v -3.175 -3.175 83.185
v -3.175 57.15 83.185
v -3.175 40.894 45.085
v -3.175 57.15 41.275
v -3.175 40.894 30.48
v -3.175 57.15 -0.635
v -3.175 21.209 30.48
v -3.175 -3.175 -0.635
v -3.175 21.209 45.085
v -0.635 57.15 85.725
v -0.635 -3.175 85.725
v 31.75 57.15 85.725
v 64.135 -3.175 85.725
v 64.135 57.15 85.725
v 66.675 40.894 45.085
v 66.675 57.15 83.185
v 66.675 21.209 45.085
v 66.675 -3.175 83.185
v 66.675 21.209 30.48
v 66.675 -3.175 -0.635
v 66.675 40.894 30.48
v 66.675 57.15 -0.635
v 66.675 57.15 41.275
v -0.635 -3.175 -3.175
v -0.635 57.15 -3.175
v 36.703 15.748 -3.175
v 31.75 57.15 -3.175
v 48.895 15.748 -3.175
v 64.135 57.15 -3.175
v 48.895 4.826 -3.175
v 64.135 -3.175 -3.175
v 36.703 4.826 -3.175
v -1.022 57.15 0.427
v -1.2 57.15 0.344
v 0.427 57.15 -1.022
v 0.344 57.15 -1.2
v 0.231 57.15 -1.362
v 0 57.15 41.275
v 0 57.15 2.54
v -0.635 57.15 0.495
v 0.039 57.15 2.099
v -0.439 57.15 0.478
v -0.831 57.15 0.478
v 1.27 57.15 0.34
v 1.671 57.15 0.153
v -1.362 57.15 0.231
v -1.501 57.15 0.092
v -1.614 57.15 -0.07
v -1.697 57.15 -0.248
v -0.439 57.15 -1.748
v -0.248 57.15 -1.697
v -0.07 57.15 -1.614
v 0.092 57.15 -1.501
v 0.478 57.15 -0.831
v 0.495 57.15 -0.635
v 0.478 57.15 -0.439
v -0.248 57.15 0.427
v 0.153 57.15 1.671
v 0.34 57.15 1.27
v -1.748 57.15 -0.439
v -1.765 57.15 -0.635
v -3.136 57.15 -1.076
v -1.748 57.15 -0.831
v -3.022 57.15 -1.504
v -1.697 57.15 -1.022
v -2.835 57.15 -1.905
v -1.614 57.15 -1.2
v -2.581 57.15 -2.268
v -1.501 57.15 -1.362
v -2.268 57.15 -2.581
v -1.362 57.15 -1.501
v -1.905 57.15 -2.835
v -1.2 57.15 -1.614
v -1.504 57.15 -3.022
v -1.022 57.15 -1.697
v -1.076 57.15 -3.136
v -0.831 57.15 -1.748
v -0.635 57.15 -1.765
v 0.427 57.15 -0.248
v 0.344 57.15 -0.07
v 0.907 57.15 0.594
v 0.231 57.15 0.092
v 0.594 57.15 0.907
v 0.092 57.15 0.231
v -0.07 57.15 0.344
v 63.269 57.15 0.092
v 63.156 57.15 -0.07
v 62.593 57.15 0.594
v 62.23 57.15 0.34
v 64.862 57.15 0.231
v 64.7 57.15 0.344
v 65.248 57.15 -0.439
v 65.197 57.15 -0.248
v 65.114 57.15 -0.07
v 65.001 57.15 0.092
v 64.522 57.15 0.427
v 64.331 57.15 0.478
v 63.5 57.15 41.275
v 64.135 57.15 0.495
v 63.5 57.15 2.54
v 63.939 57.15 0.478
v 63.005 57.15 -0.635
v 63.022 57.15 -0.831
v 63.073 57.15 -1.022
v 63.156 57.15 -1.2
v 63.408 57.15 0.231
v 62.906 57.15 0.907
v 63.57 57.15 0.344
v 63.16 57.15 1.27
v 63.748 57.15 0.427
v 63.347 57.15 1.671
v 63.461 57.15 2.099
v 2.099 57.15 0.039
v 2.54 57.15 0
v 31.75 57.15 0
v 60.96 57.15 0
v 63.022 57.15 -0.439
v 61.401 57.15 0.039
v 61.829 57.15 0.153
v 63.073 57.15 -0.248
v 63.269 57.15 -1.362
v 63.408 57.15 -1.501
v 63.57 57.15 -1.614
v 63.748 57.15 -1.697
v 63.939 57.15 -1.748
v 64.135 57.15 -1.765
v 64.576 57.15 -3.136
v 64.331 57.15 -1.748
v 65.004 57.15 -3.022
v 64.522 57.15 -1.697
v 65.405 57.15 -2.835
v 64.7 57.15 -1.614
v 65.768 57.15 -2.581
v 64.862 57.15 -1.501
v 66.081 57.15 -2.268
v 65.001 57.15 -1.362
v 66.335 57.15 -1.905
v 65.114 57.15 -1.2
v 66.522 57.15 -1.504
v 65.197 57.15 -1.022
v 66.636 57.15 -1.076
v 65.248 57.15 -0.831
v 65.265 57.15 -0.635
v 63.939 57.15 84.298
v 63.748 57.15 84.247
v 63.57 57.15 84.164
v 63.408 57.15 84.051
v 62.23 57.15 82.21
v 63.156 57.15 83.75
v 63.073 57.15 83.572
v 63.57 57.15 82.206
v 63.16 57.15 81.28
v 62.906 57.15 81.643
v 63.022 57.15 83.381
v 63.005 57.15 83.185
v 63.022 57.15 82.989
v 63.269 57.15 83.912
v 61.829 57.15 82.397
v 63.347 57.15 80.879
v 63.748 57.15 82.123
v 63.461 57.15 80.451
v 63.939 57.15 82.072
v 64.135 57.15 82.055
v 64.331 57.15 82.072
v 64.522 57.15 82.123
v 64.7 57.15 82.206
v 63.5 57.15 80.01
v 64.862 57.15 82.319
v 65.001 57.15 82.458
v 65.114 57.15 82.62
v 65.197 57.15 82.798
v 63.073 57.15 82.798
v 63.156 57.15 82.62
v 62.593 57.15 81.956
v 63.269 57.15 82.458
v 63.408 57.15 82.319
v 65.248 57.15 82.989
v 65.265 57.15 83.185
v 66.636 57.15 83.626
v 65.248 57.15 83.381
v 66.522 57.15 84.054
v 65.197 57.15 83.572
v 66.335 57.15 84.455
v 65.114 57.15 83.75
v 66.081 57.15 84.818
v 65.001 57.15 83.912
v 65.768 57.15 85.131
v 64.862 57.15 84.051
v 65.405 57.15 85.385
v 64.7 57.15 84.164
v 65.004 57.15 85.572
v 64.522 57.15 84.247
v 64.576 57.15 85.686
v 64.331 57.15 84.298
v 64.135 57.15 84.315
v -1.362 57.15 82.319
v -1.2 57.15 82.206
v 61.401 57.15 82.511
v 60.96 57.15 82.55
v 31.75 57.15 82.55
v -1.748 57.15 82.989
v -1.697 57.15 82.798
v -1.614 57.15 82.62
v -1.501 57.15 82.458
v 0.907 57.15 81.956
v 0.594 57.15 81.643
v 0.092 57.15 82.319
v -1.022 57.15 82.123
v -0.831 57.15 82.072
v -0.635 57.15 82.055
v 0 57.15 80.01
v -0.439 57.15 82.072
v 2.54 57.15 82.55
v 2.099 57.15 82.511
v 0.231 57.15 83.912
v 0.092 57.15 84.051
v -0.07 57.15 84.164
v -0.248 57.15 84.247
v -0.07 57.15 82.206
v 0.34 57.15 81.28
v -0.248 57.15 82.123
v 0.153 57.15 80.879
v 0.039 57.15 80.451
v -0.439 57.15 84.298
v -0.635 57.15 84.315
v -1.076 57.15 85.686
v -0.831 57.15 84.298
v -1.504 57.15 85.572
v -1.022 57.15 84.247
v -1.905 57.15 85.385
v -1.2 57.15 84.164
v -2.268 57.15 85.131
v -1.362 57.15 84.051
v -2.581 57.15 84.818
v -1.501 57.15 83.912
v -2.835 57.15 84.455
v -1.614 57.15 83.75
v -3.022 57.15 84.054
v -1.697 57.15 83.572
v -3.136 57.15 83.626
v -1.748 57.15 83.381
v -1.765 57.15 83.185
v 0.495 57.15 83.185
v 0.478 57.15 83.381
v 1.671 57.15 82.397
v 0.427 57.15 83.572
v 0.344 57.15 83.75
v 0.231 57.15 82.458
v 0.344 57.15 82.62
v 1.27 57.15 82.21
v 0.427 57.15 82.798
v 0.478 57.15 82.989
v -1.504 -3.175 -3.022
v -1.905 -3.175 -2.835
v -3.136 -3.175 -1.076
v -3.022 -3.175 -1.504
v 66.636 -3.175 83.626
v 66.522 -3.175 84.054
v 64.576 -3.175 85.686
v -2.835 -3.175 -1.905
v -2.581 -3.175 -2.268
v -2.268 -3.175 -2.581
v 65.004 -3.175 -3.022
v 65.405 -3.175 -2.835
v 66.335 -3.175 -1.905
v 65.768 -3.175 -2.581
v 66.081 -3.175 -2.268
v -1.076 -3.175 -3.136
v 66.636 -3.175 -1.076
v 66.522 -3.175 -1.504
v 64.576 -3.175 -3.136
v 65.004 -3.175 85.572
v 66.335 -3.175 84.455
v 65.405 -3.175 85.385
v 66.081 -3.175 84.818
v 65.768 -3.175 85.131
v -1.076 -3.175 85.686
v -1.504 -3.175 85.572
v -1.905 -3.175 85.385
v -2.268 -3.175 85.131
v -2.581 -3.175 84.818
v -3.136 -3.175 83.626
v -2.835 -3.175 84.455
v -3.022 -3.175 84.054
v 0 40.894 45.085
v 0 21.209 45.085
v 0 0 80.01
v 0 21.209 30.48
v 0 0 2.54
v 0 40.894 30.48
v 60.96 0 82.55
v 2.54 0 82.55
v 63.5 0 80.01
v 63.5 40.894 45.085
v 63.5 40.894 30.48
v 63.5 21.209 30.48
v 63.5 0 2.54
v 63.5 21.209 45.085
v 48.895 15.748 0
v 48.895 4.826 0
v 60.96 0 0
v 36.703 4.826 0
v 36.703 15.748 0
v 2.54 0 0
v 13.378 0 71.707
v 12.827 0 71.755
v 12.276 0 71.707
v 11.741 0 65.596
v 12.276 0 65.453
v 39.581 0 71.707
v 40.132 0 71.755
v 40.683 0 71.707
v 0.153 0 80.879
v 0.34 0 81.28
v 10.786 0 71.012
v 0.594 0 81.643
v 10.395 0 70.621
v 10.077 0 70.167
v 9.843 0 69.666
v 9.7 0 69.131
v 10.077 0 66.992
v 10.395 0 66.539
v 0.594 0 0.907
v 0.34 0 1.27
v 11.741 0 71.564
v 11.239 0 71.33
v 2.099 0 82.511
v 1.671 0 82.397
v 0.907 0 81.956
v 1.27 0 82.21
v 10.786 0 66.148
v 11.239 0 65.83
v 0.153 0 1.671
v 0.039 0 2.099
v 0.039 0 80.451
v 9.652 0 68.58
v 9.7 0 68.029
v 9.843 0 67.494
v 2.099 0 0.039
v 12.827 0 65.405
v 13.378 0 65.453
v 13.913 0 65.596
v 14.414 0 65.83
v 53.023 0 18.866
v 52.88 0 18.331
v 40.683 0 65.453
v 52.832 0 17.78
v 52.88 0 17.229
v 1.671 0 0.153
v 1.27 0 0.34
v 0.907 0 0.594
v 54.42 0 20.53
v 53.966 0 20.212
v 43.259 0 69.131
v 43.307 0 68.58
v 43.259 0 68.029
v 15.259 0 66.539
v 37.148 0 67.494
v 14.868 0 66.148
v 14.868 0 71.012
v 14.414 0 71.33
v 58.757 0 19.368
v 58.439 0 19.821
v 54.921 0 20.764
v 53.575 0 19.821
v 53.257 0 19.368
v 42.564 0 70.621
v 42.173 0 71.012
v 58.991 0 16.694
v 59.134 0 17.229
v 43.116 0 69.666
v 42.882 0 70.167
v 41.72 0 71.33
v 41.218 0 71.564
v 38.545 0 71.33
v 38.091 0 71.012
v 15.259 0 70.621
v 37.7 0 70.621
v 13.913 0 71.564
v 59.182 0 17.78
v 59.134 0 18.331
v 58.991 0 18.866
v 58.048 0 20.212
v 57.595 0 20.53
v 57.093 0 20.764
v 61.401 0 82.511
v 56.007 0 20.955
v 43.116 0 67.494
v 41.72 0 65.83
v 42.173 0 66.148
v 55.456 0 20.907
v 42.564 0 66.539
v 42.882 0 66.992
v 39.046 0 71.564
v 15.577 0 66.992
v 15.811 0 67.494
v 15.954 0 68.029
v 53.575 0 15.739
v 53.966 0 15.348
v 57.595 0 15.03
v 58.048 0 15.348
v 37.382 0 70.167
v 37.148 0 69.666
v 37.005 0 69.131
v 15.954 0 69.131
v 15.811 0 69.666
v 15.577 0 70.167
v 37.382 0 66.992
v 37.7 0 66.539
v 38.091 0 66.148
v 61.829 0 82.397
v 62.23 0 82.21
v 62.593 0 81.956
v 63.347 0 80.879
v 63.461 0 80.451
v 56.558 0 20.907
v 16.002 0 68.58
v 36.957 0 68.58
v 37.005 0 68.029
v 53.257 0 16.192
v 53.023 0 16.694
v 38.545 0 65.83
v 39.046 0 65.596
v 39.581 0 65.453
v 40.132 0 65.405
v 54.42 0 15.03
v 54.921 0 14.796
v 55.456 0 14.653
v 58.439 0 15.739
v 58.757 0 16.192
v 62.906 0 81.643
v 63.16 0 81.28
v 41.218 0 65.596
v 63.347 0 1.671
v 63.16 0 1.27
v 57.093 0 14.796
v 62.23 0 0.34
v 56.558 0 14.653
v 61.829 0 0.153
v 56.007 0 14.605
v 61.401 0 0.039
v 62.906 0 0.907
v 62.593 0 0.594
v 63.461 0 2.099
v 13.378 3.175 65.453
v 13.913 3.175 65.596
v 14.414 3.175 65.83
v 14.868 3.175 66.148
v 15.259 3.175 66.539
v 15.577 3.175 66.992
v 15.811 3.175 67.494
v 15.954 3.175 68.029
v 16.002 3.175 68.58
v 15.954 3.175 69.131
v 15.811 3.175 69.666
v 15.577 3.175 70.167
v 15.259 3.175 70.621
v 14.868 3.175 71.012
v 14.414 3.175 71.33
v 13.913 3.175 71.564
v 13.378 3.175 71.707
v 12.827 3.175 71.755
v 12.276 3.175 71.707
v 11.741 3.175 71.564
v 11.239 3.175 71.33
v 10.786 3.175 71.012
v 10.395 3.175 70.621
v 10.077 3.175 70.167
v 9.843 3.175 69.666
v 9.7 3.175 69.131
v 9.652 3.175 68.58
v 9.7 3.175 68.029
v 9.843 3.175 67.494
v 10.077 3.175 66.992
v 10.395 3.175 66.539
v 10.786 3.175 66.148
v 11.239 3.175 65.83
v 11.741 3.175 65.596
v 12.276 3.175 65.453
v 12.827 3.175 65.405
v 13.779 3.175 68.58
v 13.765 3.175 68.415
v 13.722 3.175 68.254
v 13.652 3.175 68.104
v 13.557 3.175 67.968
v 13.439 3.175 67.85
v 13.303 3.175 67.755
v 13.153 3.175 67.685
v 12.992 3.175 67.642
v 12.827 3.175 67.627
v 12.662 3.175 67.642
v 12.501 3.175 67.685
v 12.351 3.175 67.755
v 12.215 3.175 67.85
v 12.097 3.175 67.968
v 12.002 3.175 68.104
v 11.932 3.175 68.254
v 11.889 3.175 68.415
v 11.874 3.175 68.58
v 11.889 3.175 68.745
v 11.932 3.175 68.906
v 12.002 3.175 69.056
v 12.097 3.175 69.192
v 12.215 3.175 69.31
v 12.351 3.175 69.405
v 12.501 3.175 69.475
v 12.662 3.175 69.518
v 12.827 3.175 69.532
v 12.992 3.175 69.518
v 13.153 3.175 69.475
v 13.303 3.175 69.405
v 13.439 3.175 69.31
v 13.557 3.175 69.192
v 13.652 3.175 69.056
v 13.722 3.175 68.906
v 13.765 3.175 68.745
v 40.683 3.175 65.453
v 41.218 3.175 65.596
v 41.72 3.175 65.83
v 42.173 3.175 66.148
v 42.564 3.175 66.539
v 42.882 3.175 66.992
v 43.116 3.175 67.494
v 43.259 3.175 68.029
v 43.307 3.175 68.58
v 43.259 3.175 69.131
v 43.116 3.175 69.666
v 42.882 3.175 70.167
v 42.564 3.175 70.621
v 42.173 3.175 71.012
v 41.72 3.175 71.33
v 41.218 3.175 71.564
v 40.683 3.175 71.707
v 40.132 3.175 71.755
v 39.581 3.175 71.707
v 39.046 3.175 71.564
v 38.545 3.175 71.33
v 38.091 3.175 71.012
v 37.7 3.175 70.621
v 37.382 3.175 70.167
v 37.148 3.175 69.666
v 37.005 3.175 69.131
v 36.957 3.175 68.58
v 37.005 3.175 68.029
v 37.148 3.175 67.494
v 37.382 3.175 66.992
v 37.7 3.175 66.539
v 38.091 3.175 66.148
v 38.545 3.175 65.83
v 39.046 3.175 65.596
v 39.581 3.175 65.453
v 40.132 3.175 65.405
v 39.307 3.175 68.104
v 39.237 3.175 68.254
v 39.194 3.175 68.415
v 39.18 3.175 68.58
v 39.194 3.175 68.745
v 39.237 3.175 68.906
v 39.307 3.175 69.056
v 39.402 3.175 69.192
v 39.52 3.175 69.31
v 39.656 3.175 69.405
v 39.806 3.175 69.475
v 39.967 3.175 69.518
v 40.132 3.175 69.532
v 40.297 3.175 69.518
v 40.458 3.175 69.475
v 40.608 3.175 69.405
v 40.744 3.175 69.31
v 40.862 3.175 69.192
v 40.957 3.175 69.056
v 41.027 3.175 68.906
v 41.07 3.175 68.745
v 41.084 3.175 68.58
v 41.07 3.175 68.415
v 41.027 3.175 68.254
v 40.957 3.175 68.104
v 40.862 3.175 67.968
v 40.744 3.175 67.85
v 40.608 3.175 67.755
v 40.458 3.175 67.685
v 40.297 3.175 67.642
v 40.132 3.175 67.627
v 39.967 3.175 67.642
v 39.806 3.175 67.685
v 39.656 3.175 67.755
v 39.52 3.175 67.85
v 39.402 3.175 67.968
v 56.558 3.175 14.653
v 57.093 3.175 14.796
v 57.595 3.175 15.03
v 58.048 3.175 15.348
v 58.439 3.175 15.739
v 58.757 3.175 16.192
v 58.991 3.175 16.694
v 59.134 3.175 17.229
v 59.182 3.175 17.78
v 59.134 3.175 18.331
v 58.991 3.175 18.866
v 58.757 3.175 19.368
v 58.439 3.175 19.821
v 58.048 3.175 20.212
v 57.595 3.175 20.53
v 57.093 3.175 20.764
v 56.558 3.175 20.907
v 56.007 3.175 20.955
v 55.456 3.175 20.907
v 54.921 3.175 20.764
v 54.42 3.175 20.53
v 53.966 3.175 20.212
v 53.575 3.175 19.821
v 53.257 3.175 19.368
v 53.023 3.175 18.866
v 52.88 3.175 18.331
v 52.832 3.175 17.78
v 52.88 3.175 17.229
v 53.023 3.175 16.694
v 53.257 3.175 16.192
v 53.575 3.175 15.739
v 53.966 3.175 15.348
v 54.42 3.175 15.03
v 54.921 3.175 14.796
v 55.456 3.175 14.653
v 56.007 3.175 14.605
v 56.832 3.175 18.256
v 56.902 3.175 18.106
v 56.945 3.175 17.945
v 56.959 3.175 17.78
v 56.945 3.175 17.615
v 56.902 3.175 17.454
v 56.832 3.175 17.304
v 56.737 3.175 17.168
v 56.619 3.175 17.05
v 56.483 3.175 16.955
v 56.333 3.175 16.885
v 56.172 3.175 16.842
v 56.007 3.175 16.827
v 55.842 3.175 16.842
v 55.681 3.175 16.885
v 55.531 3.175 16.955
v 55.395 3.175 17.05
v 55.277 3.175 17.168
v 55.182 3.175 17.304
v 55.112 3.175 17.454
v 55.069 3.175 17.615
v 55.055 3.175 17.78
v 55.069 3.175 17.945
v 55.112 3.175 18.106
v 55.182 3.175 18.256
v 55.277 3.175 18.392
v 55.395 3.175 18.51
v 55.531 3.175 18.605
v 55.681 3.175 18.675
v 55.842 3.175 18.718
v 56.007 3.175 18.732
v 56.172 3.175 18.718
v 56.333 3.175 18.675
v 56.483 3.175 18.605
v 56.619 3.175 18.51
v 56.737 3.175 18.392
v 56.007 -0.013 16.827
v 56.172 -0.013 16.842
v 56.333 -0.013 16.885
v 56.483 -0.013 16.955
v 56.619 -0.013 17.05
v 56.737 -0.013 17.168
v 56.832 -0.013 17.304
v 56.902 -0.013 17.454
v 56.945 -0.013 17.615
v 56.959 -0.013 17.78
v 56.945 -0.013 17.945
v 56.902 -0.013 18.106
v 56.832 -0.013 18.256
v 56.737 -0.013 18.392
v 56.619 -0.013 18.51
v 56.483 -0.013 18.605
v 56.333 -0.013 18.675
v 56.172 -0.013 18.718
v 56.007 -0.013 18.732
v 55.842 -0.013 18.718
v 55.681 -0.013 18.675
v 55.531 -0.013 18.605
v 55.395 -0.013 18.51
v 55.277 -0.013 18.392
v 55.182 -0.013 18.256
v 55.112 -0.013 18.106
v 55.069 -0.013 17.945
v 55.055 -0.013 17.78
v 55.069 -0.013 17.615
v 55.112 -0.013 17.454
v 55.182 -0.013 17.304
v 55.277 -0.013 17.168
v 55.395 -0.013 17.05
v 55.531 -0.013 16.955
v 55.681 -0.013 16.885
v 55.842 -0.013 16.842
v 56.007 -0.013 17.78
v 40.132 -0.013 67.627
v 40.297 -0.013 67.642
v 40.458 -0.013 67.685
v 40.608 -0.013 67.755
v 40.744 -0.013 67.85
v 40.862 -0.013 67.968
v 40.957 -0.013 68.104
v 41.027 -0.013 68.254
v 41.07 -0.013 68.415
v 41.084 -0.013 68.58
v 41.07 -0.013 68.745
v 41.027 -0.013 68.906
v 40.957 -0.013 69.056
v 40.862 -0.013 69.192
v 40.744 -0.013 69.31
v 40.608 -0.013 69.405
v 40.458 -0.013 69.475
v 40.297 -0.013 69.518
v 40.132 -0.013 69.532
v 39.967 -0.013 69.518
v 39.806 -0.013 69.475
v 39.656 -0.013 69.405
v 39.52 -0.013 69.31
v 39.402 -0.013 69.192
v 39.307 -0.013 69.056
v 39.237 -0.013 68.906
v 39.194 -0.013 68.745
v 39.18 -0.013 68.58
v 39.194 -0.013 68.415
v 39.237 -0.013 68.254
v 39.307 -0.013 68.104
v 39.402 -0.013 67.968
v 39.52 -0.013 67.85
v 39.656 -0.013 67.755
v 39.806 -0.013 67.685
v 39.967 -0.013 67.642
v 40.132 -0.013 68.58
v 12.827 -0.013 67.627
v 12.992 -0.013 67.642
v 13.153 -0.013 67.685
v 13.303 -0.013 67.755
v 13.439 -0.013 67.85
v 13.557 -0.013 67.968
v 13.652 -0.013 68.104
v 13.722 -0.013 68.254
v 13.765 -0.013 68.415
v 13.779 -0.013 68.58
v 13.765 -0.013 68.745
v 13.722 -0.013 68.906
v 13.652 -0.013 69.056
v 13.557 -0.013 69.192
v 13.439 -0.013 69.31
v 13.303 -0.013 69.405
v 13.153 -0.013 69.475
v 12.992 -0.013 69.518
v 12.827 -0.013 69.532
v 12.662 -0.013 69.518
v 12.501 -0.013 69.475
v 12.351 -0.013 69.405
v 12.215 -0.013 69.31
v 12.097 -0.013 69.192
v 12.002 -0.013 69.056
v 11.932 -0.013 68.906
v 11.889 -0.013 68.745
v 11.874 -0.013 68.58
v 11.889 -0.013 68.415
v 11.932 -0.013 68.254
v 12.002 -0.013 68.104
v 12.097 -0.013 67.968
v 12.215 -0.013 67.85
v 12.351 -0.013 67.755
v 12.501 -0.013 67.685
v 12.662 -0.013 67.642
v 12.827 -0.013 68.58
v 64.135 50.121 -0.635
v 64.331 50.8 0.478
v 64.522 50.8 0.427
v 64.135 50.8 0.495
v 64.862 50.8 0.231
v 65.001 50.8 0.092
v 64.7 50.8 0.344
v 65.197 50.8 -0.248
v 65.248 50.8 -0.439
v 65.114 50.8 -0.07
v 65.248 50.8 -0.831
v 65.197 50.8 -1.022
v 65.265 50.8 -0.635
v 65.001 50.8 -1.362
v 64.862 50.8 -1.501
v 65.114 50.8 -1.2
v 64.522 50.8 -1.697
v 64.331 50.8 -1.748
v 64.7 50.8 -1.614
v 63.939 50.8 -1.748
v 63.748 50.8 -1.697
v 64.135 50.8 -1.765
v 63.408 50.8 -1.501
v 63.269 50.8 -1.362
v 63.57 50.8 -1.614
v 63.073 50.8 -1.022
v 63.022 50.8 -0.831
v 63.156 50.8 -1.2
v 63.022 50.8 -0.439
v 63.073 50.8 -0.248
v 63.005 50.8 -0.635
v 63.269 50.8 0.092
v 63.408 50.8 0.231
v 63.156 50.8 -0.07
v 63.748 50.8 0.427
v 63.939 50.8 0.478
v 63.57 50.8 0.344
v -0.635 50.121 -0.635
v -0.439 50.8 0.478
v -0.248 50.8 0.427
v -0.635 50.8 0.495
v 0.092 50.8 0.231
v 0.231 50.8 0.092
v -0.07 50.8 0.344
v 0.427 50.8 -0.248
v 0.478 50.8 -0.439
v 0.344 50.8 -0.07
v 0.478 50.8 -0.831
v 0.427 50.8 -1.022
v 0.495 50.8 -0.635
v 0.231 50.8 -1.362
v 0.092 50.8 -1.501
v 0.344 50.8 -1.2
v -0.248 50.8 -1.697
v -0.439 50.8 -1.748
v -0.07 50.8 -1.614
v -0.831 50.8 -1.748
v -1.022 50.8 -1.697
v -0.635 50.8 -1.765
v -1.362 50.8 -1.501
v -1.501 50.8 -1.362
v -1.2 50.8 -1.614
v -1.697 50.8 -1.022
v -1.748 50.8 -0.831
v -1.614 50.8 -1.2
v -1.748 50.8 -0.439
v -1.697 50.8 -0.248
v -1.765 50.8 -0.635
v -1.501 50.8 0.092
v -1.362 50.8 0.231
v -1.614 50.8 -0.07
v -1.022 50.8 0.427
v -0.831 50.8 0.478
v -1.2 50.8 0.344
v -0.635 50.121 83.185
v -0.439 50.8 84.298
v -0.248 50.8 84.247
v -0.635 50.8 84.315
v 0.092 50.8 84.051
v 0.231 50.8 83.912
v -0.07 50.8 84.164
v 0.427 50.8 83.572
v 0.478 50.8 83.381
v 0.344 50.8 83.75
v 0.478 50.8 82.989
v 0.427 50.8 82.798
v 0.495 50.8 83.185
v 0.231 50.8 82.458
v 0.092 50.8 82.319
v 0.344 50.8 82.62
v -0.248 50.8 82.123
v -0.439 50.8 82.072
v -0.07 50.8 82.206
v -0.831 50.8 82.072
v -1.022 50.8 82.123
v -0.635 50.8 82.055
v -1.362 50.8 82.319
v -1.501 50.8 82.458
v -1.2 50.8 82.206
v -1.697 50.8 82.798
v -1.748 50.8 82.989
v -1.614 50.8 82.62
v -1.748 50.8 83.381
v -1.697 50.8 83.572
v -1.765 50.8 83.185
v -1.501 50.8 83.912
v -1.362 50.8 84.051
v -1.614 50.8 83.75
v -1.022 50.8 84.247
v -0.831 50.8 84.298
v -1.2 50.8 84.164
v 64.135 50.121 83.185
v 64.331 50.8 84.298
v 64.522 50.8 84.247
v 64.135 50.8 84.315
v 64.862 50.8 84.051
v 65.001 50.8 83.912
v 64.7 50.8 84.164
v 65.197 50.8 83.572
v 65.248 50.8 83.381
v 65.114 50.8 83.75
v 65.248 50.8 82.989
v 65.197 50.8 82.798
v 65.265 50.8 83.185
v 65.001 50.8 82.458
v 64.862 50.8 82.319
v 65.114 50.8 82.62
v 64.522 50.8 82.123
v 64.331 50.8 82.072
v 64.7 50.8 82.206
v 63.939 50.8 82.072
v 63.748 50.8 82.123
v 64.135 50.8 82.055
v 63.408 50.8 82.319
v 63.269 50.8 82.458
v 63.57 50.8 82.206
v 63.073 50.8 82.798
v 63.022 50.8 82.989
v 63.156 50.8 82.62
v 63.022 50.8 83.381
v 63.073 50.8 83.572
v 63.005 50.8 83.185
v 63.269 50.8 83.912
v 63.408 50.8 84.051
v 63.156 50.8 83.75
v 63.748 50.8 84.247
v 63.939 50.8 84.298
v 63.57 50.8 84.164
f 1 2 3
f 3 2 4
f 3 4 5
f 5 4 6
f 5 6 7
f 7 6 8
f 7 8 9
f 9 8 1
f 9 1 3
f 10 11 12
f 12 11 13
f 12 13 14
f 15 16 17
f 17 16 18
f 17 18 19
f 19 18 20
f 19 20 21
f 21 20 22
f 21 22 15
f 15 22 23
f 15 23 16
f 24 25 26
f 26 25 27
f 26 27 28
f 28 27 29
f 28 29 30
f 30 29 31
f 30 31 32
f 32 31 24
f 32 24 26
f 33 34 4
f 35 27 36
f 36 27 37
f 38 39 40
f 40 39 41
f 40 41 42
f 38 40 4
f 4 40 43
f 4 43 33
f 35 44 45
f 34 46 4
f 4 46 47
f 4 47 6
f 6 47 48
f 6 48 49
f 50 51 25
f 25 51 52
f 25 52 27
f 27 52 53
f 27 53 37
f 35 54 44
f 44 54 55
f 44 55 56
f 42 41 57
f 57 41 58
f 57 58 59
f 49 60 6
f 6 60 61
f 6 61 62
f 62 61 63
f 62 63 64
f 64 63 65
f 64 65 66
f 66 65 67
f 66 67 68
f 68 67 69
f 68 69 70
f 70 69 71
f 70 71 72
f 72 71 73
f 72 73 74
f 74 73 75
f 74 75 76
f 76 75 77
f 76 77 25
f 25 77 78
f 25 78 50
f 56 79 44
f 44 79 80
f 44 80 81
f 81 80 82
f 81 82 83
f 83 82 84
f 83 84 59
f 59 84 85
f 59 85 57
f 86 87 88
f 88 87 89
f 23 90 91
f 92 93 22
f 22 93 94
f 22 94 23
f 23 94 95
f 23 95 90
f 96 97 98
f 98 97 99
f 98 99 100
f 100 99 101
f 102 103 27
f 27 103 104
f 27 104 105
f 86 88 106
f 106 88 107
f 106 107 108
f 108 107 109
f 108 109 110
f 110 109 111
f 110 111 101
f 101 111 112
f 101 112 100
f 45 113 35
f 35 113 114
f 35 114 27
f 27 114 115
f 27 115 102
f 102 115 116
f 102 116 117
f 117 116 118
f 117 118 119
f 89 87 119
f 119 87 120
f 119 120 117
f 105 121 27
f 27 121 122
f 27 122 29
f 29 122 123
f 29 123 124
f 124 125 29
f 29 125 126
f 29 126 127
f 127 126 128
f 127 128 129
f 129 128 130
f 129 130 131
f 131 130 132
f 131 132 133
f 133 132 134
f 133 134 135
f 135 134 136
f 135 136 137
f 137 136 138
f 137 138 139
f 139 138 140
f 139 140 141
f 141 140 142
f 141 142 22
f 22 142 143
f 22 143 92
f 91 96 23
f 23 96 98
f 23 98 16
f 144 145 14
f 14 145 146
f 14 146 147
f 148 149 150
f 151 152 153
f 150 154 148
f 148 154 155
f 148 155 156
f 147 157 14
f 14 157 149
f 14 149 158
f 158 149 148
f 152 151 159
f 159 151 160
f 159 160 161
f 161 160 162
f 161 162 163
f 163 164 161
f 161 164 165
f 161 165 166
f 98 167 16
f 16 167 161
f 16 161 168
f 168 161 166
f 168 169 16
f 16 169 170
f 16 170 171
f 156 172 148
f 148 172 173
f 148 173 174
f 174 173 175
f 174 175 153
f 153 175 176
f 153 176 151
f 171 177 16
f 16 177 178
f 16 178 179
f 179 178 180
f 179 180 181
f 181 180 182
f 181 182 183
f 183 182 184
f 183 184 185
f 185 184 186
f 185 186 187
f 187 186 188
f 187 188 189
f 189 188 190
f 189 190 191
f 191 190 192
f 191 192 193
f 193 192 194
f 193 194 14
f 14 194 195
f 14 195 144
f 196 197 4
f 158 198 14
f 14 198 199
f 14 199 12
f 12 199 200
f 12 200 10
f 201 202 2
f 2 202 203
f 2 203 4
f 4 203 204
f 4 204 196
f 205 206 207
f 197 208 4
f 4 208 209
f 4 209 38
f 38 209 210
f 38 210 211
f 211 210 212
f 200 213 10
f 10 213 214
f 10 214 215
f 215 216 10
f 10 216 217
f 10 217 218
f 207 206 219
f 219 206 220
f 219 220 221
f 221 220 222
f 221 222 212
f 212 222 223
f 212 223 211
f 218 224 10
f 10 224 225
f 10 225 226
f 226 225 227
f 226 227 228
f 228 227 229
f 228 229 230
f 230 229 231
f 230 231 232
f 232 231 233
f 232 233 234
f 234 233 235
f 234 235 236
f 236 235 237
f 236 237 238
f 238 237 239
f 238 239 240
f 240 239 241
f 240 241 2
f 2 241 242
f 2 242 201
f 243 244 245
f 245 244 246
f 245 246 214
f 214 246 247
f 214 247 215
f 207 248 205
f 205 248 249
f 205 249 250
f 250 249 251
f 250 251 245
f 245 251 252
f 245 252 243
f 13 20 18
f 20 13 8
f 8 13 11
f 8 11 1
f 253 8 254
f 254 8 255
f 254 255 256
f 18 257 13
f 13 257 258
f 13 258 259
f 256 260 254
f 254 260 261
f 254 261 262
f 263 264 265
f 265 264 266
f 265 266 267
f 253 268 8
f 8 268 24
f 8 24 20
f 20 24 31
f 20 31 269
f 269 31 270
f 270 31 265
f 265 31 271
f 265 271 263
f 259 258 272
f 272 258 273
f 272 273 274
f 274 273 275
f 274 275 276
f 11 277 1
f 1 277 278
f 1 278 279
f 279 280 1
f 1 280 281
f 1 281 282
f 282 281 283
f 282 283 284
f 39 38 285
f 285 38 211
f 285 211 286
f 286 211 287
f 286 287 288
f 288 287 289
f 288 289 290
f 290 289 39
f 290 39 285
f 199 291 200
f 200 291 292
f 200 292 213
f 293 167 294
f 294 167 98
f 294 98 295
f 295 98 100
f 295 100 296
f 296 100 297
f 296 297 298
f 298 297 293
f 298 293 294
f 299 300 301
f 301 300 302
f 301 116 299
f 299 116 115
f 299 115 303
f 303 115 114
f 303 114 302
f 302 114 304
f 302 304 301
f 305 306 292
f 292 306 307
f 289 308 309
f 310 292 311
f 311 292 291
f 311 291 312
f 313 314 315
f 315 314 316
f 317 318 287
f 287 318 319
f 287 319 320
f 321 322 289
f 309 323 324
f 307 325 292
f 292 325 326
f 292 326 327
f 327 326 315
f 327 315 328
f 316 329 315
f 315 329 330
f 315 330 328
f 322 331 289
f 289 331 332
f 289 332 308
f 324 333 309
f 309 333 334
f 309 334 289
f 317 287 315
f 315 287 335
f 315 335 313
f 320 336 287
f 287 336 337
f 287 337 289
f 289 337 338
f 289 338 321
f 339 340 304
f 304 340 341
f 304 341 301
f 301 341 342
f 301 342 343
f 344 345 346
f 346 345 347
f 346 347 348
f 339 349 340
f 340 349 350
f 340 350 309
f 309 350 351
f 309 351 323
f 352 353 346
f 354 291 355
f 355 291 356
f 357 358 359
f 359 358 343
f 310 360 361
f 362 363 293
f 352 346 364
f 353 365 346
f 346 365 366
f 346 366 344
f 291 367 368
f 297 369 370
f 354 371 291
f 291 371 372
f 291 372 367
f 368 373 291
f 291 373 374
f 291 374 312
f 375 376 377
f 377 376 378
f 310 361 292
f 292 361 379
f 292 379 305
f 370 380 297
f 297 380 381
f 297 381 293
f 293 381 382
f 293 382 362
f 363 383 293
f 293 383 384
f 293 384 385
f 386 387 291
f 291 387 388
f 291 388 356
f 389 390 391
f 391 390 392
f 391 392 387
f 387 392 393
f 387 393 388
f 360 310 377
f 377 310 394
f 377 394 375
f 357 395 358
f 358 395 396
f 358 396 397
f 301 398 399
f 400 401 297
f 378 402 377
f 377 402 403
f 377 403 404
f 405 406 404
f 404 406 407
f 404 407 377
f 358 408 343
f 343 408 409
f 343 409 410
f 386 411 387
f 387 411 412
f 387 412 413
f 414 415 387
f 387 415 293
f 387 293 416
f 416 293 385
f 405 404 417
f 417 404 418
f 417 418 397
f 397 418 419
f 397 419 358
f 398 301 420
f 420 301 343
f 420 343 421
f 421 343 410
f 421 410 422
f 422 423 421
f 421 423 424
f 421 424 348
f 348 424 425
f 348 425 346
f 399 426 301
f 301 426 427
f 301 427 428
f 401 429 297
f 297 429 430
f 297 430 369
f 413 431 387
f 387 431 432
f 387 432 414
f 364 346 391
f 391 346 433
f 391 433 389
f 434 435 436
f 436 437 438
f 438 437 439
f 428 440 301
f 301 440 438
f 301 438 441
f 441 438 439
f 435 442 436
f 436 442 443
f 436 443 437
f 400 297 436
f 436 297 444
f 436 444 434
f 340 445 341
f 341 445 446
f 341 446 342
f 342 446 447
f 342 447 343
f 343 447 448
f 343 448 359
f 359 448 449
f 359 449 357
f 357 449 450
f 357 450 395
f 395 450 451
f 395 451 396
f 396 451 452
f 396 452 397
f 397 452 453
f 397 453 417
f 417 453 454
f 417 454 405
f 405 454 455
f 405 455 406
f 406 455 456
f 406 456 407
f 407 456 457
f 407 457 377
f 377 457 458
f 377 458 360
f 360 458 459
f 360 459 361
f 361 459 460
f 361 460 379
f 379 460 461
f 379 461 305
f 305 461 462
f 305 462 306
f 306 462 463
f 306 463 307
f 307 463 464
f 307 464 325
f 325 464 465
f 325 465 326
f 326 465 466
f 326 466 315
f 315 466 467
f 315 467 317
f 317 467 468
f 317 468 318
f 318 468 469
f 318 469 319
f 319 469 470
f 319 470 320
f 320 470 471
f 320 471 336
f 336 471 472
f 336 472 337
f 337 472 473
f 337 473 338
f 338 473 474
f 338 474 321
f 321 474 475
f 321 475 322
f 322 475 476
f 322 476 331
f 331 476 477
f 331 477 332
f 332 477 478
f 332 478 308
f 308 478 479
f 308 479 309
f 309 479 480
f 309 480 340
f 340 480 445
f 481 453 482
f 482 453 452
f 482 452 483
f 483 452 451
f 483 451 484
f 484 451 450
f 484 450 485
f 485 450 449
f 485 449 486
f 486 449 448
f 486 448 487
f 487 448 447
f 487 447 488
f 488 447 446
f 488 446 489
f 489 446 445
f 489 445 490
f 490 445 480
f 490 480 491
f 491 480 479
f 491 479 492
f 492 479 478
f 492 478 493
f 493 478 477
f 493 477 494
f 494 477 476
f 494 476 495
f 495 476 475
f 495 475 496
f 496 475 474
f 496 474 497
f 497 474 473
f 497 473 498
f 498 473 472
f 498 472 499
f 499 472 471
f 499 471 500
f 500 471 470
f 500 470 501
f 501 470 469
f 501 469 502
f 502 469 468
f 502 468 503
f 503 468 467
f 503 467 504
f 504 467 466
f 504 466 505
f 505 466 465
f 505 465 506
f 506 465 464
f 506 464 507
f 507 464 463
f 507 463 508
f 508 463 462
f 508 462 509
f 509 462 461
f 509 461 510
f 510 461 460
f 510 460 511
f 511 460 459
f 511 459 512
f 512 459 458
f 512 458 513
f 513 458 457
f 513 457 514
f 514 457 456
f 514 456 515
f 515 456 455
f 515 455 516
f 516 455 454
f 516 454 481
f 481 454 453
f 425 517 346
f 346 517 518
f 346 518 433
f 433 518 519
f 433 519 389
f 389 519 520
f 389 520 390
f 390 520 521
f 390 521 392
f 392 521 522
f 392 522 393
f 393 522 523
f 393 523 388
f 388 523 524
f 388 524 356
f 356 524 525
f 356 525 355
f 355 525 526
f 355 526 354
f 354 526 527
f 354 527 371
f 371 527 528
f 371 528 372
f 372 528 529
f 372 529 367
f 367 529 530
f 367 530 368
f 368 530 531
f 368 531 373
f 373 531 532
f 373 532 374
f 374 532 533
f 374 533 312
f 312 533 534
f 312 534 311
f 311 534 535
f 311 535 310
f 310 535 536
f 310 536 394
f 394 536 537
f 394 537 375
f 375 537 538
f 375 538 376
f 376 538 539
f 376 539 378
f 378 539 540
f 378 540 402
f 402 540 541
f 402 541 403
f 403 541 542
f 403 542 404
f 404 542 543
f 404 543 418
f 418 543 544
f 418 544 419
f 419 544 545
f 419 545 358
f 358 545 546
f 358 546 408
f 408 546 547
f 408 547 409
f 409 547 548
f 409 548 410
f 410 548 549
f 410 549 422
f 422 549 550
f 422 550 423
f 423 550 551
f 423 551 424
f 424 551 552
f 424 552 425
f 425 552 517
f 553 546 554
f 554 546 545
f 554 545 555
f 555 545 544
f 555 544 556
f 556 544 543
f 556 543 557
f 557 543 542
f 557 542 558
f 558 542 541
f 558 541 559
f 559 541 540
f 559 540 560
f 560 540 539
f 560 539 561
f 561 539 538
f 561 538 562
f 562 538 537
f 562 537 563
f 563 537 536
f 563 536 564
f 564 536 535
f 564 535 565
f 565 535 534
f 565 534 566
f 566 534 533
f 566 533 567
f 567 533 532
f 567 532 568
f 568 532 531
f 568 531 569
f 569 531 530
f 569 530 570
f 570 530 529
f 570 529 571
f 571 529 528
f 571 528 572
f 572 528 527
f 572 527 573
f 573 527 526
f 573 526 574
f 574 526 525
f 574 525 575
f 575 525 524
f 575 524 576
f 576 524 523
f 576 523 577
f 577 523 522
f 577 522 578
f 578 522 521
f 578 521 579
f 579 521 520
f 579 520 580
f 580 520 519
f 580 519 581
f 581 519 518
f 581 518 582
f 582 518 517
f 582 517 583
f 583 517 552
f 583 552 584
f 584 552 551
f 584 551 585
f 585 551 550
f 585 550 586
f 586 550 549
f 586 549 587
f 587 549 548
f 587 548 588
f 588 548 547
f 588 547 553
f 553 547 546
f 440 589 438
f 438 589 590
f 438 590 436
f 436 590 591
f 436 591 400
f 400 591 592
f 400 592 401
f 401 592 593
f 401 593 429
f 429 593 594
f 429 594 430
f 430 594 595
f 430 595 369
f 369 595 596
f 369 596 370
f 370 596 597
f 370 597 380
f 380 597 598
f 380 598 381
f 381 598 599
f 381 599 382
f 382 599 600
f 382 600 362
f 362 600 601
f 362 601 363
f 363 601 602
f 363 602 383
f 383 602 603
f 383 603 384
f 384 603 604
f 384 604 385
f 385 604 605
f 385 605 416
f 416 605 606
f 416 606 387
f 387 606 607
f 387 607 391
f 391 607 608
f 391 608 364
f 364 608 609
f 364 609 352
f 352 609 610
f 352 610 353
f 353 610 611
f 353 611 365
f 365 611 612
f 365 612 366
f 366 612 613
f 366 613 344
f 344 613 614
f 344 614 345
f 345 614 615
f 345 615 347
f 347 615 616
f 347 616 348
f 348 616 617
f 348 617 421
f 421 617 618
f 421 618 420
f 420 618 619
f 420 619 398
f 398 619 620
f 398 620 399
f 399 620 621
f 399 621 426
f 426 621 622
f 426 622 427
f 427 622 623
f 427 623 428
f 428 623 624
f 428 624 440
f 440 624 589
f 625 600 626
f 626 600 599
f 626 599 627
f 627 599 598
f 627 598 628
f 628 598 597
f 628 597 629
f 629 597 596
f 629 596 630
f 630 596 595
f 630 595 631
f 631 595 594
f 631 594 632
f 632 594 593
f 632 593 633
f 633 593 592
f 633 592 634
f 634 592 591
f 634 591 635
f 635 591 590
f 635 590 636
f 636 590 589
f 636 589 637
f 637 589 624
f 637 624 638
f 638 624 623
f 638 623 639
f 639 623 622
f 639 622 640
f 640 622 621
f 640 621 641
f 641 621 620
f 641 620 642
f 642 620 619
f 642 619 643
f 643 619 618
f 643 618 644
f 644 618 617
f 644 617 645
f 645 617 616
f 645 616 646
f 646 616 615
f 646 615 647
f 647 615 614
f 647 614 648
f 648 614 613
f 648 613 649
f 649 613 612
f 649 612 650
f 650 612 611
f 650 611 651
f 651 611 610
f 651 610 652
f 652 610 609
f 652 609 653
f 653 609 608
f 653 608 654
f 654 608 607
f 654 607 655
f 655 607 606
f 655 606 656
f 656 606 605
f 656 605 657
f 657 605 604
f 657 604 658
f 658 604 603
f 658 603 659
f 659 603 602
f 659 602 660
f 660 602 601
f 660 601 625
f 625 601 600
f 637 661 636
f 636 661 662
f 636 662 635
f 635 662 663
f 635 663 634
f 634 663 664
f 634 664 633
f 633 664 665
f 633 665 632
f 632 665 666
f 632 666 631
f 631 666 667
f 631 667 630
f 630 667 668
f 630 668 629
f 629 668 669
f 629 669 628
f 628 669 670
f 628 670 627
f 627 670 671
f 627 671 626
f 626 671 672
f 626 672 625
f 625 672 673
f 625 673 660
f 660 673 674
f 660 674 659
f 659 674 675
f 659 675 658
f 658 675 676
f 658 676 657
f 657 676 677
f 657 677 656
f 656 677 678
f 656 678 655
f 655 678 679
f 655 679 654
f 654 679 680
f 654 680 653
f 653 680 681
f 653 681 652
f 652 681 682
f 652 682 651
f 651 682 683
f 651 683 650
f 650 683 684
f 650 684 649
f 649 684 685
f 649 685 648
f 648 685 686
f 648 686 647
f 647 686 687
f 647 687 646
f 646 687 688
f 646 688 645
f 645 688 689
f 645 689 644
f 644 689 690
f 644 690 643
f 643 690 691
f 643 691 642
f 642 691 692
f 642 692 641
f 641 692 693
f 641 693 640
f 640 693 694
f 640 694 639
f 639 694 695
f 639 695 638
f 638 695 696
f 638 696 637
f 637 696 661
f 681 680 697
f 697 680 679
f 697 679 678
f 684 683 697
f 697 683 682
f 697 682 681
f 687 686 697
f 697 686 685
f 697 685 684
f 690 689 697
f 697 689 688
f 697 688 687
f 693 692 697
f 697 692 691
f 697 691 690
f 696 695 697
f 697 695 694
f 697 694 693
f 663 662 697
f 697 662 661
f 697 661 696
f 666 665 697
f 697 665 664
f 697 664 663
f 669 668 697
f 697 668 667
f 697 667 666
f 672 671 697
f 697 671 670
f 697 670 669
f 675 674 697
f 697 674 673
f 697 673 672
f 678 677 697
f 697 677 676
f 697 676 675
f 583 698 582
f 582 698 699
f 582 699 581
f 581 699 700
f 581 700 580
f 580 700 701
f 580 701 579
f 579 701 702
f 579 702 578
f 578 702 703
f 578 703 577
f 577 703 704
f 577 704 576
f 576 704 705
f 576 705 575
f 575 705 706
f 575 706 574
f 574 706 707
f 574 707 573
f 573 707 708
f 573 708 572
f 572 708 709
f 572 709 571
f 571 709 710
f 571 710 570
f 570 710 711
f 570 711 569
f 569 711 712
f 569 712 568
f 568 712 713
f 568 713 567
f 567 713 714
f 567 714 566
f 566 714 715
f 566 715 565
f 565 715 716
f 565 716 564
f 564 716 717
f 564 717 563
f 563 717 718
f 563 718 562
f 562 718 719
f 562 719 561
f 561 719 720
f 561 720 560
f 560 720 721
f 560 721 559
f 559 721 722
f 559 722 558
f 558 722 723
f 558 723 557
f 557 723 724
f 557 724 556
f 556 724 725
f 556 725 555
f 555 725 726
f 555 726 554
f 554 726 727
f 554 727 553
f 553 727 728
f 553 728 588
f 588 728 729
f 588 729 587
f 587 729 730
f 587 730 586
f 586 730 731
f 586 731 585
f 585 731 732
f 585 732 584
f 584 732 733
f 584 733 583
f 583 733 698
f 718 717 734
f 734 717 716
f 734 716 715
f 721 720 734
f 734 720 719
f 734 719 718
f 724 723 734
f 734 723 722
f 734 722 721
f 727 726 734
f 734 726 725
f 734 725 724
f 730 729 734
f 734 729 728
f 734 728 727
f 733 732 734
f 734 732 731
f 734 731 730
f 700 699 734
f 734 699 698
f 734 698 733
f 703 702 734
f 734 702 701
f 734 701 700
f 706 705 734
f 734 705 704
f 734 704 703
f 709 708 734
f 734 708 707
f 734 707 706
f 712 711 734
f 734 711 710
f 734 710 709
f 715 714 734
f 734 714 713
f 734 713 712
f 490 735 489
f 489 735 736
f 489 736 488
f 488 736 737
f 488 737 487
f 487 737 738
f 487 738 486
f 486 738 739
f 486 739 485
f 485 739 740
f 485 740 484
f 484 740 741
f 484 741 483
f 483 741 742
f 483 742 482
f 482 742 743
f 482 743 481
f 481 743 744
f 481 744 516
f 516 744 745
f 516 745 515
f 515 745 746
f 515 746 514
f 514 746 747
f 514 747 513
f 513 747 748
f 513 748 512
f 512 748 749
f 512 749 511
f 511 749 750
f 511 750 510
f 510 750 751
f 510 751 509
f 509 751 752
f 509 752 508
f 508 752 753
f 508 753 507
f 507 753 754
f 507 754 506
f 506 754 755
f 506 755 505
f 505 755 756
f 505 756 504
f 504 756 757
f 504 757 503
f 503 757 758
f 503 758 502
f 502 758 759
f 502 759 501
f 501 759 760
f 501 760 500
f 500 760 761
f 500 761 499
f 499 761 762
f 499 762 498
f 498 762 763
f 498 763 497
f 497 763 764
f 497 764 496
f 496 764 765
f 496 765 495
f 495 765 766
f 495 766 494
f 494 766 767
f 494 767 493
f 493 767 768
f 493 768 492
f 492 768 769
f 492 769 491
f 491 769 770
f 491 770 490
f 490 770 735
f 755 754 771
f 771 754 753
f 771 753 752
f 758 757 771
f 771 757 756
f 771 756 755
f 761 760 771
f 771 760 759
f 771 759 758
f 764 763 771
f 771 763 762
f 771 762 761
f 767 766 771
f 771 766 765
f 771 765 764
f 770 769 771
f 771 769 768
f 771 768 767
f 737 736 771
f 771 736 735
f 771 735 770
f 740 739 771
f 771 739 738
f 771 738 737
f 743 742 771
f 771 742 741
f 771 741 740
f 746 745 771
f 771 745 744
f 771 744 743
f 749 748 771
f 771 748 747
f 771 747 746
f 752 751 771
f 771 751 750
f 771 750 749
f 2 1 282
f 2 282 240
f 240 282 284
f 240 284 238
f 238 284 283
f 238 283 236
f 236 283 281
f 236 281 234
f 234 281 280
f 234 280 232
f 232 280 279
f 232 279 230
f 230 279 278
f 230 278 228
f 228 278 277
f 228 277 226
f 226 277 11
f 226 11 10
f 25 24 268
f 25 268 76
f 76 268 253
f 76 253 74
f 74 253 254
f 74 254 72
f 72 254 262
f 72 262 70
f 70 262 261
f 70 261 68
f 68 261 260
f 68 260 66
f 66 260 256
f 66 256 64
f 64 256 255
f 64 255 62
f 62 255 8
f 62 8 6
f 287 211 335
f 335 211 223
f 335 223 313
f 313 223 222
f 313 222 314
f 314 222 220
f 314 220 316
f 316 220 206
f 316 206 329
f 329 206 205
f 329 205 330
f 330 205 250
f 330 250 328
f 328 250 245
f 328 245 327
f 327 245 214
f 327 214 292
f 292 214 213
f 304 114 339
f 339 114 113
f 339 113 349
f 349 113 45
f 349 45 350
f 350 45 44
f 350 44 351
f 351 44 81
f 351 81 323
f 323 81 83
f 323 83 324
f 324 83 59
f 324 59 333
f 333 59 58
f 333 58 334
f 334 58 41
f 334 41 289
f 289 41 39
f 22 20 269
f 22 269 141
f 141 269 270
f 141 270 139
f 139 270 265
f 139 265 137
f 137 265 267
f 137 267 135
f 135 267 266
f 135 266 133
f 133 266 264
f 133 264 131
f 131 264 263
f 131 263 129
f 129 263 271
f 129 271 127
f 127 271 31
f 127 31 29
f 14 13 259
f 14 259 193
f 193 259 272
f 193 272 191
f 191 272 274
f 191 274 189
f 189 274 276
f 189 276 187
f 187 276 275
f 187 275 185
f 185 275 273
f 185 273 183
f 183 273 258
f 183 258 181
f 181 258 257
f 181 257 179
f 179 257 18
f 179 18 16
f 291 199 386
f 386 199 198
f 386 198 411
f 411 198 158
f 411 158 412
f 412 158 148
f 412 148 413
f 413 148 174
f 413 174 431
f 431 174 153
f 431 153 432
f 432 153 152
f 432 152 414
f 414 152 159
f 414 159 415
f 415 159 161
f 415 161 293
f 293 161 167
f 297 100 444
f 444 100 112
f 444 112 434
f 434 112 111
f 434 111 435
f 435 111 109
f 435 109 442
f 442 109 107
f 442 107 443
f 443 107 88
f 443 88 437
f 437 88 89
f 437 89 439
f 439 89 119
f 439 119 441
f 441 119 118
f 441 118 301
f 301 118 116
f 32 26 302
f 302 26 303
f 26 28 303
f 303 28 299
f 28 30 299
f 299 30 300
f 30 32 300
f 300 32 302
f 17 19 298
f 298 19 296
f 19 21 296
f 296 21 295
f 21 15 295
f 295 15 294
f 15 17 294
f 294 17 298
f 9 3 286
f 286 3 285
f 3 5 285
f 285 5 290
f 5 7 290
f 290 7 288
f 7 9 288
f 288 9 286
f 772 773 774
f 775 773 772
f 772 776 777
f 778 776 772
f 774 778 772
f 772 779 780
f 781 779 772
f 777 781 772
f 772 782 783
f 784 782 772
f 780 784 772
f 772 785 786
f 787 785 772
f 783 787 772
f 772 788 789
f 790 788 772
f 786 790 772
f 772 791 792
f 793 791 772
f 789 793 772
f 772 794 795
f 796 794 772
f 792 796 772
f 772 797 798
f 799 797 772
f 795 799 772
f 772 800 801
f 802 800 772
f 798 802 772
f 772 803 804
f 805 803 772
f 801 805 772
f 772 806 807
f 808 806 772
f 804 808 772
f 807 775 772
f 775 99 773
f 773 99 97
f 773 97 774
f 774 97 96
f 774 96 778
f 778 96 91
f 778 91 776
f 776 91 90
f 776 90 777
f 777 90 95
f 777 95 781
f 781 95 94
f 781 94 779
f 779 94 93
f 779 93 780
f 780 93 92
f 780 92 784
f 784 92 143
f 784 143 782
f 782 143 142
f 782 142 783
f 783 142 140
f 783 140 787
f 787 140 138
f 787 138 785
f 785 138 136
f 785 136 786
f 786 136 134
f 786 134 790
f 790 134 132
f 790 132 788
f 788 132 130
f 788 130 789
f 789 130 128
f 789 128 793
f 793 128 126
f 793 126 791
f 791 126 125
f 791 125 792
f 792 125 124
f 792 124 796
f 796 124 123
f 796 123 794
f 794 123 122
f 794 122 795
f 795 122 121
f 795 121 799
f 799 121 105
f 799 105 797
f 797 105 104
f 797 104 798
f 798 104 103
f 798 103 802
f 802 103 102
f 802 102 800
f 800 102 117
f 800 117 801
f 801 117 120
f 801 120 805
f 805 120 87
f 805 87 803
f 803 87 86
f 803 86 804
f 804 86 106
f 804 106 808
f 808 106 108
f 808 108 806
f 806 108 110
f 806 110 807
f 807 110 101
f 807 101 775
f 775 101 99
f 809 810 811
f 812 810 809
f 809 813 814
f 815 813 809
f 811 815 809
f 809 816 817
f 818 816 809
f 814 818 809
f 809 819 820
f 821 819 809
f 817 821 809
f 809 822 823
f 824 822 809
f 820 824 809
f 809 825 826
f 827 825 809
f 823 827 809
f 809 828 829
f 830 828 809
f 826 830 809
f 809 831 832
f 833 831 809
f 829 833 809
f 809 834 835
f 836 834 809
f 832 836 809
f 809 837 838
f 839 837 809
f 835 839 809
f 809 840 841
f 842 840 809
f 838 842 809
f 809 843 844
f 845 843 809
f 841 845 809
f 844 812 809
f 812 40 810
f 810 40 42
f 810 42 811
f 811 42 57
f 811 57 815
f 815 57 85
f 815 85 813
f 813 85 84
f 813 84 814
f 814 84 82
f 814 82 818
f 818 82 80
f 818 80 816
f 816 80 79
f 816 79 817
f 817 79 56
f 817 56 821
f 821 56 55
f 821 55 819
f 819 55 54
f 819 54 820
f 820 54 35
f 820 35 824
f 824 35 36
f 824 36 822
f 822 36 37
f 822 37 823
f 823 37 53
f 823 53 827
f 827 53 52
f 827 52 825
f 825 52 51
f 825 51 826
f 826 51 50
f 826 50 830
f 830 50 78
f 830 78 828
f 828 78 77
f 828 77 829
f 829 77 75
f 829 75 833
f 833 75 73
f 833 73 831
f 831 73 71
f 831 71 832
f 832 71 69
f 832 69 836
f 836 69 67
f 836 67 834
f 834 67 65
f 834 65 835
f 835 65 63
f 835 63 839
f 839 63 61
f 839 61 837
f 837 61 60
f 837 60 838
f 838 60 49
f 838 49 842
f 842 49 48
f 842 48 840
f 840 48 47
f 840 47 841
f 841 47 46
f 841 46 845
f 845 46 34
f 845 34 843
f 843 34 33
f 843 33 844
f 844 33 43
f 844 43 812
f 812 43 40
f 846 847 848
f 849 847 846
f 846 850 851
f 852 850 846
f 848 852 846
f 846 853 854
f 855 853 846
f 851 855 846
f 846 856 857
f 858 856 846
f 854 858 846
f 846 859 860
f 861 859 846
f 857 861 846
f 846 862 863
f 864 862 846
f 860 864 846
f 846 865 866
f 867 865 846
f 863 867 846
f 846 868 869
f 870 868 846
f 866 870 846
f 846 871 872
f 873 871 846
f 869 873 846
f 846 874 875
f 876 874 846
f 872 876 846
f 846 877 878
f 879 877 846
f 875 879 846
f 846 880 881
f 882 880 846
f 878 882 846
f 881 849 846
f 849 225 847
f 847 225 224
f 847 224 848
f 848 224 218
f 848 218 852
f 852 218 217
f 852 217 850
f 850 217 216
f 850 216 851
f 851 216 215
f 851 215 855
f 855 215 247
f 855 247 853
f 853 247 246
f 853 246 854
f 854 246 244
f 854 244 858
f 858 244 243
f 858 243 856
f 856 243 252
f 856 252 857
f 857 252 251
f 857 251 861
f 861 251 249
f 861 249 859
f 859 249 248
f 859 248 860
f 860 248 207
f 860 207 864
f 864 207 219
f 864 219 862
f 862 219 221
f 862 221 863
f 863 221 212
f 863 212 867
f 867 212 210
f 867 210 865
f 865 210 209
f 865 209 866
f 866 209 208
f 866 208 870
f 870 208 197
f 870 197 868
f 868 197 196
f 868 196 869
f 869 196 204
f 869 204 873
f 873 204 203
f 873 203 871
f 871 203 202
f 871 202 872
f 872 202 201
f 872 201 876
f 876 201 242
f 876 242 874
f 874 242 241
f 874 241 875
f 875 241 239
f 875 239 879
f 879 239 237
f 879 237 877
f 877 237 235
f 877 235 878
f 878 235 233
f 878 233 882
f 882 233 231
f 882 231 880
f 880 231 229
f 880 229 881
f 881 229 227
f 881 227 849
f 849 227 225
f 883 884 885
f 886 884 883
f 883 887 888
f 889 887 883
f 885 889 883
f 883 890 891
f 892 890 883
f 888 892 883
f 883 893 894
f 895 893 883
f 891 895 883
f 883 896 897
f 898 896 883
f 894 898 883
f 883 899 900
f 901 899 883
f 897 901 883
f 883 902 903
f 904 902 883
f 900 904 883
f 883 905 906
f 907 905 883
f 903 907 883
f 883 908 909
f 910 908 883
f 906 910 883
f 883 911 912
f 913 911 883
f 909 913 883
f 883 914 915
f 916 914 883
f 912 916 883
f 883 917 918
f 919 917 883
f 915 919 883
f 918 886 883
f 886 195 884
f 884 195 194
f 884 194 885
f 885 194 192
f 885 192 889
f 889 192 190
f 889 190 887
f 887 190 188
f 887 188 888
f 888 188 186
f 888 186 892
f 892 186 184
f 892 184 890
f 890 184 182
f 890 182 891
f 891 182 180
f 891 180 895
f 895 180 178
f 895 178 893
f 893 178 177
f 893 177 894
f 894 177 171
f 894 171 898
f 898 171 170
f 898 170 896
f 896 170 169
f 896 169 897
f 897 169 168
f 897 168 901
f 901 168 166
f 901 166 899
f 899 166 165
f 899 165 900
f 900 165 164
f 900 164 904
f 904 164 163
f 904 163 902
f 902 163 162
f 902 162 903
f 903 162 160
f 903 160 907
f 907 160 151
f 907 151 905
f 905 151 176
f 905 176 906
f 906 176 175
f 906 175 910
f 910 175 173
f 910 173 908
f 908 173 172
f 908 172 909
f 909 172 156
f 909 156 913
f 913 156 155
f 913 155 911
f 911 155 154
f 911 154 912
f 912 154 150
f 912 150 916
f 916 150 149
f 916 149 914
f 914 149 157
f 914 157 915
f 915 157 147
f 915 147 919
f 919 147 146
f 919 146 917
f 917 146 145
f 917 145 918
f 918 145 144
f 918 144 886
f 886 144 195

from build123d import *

# Parameters (mm, degrees)
SKETCH1_W                 = 63.5
SKETCH1_H                 = 82.55
BOSS_EXTRUDE1_DEPTH       = 57.15
SHELL1_T                  = 3.175
SKETCH3_R                 = 3.175
BOSS_EXTRUDE2_DEPTH       = 3.175
SKETCH2_R                 = 0.9525
CUT_EXTRUDE1_DEPTH        = 6.35
CUT_EXTRUDE1_DEPTH_BACK   = 0.0127
FILLET1_R                 = 2.54
SKETCH4_W                 = 12.192
SKETCH4_H                 = 10.922
CUT_EXTRUDE2_DEPTH        = 123.721040372
SKETCH5_W                 = 14.605
SKETCH5_H                 = 19.685
CUT_EXTRUDE3_DEPTH        = 125.474578228
F_4_40_TAPPED_HOLE1_D     = 2.2606
F_4_40_TAPPED_HOLE1_DEPTH = 6.35
F_4_40_TAPPED_HOLE1_TIP   = 0.679152758


with BuildPart() as part:
    # Sketch1 → Boss-Extrude1 (new body)
    with BuildSketch(Plane(origin=(0, 0, 0), x_dir=(1, 0, 0), z_dir=(0, 1, 0))):
        with Locations((31.75, -41.275)):
            Rectangle(SKETCH1_W, SKETCH1_H)
    extrude(amount=BOSS_EXTRUDE1_DEPTH)

    # Shell1
    shell1_openings = [part.faces().sort_by_distance(p)[0] for p in [
        (31.75, 57.15, 41.275),
    ]]
    offset(amount=SHELL1_T, openings=shell1_openings, kind=Kind.INTERSECTION)

    # Sketch3 → Boss-Extrude2 (add)
    with BuildSketch(Plane(origin=(0, 0, 0), x_dir=(1, 0, 0), z_dir=(0, 1, 0))):
        with Locations(Location((12.827, -68.58, 0), (0, 0, 270))):
            Circle(SKETCH3_R)
        with Locations(Location((40.132, -68.58, 0), (0, 0, 270))):
            Circle(SKETCH3_R)
        with Locations(Location((56.007, -17.78, 0), (0, 0, 270))):
            Circle(SKETCH3_R)
    extrude(amount=BOSS_EXTRUDE2_DEPTH)

    # Sketch2 → Cut-Extrude1 (cut, two sides)
    with BuildSketch(Plane(origin=(0, 0, 0), x_dir=(1, 0, 0), z_dir=(0, 1, 0))) as cut_extrude1_sk:
        with Locations(Location((12.827, -68.58, 0), (0, 0, 270))):
            Circle(SKETCH2_R)
        with Locations(Location((40.132, -68.58, 0), (0, 0, 270))):
            Circle(SKETCH2_R)
        with Locations(Location((56.007, -17.78, 0), (0, 0, 270))):
            Circle(SKETCH2_R)
    extrude(amount=CUT_EXTRUDE1_DEPTH, mode=Mode.SUBTRACT)
    extrude(cut_extrude1_sk.sketch, amount=-CUT_EXTRUDE1_DEPTH_BACK, mode=Mode.SUBTRACT)

    # Fillet1
    fillet1_edges = [part.edges().sort_by_distance(p)[0] for p in [
        (0, 28.575, 0),
        (0, 28.575, 82.55),
        (63.5, 28.575, 82.55),
        (63.5, 28.575, 0),
        (-3.175, 26.9875, -3.175),
        (66.675, 26.9875, -3.175),
        (66.675, 26.9875, 85.725),
        (-3.175, 26.9875, 85.725),
    ]]
    fillet(fillet1_edges, radius=FILLET1_R)

    # Sketch4 → Cut-Extrude2 (cut, through all)
    with BuildSketch(Plane.XY):
        with Locations((42.799, 10.287)):
            Rectangle(SKETCH4_W, SKETCH4_H)
    extrude(amount=-CUT_EXTRUDE2_DEPTH, mode=Mode.SUBTRACT)

    # Sketch5 → Cut-Extrude3 (cut, through all)
    with BuildSketch(Plane(origin=(66.675, 0, 0), x_dir=(0, 0, -1), z_dir=(1, 0, 0))):
        with Locations((-37.7825, 31.0515)):
            Rectangle(SKETCH5_W, SKETCH5_H)
    extrude(amount=-CUT_EXTRUDE3_DEPTH, mode=Mode.SUBTRACT)

    # #4-40 Tapped Hole1
    with Locations(Plane(origin=(0, 57.15, 0), x_dir=(1, 0, 0), z_dir=(0, 1, 0))):
        with Locations((64.135, -83.185), (-0.635, -83.185), (-0.635, 0.635), (64.135, 0.635)):
            Hole(F_4_40_TAPPED_HOLE1_D / 2, depth=F_4_40_TAPPED_HOLE1_DEPTH)
            with Locations((0, 0, -(F_4_40_TAPPED_HOLE1_DEPTH + F_4_40_TAPPED_HOLE1_TIP / 2))):  # 118° drill point
                Cone(0, F_4_40_TAPPED_HOLE1_D / 2, F_4_40_TAPPED_HOLE1_TIP, mode=Mode.SUBTRACT)


solid = part.part
